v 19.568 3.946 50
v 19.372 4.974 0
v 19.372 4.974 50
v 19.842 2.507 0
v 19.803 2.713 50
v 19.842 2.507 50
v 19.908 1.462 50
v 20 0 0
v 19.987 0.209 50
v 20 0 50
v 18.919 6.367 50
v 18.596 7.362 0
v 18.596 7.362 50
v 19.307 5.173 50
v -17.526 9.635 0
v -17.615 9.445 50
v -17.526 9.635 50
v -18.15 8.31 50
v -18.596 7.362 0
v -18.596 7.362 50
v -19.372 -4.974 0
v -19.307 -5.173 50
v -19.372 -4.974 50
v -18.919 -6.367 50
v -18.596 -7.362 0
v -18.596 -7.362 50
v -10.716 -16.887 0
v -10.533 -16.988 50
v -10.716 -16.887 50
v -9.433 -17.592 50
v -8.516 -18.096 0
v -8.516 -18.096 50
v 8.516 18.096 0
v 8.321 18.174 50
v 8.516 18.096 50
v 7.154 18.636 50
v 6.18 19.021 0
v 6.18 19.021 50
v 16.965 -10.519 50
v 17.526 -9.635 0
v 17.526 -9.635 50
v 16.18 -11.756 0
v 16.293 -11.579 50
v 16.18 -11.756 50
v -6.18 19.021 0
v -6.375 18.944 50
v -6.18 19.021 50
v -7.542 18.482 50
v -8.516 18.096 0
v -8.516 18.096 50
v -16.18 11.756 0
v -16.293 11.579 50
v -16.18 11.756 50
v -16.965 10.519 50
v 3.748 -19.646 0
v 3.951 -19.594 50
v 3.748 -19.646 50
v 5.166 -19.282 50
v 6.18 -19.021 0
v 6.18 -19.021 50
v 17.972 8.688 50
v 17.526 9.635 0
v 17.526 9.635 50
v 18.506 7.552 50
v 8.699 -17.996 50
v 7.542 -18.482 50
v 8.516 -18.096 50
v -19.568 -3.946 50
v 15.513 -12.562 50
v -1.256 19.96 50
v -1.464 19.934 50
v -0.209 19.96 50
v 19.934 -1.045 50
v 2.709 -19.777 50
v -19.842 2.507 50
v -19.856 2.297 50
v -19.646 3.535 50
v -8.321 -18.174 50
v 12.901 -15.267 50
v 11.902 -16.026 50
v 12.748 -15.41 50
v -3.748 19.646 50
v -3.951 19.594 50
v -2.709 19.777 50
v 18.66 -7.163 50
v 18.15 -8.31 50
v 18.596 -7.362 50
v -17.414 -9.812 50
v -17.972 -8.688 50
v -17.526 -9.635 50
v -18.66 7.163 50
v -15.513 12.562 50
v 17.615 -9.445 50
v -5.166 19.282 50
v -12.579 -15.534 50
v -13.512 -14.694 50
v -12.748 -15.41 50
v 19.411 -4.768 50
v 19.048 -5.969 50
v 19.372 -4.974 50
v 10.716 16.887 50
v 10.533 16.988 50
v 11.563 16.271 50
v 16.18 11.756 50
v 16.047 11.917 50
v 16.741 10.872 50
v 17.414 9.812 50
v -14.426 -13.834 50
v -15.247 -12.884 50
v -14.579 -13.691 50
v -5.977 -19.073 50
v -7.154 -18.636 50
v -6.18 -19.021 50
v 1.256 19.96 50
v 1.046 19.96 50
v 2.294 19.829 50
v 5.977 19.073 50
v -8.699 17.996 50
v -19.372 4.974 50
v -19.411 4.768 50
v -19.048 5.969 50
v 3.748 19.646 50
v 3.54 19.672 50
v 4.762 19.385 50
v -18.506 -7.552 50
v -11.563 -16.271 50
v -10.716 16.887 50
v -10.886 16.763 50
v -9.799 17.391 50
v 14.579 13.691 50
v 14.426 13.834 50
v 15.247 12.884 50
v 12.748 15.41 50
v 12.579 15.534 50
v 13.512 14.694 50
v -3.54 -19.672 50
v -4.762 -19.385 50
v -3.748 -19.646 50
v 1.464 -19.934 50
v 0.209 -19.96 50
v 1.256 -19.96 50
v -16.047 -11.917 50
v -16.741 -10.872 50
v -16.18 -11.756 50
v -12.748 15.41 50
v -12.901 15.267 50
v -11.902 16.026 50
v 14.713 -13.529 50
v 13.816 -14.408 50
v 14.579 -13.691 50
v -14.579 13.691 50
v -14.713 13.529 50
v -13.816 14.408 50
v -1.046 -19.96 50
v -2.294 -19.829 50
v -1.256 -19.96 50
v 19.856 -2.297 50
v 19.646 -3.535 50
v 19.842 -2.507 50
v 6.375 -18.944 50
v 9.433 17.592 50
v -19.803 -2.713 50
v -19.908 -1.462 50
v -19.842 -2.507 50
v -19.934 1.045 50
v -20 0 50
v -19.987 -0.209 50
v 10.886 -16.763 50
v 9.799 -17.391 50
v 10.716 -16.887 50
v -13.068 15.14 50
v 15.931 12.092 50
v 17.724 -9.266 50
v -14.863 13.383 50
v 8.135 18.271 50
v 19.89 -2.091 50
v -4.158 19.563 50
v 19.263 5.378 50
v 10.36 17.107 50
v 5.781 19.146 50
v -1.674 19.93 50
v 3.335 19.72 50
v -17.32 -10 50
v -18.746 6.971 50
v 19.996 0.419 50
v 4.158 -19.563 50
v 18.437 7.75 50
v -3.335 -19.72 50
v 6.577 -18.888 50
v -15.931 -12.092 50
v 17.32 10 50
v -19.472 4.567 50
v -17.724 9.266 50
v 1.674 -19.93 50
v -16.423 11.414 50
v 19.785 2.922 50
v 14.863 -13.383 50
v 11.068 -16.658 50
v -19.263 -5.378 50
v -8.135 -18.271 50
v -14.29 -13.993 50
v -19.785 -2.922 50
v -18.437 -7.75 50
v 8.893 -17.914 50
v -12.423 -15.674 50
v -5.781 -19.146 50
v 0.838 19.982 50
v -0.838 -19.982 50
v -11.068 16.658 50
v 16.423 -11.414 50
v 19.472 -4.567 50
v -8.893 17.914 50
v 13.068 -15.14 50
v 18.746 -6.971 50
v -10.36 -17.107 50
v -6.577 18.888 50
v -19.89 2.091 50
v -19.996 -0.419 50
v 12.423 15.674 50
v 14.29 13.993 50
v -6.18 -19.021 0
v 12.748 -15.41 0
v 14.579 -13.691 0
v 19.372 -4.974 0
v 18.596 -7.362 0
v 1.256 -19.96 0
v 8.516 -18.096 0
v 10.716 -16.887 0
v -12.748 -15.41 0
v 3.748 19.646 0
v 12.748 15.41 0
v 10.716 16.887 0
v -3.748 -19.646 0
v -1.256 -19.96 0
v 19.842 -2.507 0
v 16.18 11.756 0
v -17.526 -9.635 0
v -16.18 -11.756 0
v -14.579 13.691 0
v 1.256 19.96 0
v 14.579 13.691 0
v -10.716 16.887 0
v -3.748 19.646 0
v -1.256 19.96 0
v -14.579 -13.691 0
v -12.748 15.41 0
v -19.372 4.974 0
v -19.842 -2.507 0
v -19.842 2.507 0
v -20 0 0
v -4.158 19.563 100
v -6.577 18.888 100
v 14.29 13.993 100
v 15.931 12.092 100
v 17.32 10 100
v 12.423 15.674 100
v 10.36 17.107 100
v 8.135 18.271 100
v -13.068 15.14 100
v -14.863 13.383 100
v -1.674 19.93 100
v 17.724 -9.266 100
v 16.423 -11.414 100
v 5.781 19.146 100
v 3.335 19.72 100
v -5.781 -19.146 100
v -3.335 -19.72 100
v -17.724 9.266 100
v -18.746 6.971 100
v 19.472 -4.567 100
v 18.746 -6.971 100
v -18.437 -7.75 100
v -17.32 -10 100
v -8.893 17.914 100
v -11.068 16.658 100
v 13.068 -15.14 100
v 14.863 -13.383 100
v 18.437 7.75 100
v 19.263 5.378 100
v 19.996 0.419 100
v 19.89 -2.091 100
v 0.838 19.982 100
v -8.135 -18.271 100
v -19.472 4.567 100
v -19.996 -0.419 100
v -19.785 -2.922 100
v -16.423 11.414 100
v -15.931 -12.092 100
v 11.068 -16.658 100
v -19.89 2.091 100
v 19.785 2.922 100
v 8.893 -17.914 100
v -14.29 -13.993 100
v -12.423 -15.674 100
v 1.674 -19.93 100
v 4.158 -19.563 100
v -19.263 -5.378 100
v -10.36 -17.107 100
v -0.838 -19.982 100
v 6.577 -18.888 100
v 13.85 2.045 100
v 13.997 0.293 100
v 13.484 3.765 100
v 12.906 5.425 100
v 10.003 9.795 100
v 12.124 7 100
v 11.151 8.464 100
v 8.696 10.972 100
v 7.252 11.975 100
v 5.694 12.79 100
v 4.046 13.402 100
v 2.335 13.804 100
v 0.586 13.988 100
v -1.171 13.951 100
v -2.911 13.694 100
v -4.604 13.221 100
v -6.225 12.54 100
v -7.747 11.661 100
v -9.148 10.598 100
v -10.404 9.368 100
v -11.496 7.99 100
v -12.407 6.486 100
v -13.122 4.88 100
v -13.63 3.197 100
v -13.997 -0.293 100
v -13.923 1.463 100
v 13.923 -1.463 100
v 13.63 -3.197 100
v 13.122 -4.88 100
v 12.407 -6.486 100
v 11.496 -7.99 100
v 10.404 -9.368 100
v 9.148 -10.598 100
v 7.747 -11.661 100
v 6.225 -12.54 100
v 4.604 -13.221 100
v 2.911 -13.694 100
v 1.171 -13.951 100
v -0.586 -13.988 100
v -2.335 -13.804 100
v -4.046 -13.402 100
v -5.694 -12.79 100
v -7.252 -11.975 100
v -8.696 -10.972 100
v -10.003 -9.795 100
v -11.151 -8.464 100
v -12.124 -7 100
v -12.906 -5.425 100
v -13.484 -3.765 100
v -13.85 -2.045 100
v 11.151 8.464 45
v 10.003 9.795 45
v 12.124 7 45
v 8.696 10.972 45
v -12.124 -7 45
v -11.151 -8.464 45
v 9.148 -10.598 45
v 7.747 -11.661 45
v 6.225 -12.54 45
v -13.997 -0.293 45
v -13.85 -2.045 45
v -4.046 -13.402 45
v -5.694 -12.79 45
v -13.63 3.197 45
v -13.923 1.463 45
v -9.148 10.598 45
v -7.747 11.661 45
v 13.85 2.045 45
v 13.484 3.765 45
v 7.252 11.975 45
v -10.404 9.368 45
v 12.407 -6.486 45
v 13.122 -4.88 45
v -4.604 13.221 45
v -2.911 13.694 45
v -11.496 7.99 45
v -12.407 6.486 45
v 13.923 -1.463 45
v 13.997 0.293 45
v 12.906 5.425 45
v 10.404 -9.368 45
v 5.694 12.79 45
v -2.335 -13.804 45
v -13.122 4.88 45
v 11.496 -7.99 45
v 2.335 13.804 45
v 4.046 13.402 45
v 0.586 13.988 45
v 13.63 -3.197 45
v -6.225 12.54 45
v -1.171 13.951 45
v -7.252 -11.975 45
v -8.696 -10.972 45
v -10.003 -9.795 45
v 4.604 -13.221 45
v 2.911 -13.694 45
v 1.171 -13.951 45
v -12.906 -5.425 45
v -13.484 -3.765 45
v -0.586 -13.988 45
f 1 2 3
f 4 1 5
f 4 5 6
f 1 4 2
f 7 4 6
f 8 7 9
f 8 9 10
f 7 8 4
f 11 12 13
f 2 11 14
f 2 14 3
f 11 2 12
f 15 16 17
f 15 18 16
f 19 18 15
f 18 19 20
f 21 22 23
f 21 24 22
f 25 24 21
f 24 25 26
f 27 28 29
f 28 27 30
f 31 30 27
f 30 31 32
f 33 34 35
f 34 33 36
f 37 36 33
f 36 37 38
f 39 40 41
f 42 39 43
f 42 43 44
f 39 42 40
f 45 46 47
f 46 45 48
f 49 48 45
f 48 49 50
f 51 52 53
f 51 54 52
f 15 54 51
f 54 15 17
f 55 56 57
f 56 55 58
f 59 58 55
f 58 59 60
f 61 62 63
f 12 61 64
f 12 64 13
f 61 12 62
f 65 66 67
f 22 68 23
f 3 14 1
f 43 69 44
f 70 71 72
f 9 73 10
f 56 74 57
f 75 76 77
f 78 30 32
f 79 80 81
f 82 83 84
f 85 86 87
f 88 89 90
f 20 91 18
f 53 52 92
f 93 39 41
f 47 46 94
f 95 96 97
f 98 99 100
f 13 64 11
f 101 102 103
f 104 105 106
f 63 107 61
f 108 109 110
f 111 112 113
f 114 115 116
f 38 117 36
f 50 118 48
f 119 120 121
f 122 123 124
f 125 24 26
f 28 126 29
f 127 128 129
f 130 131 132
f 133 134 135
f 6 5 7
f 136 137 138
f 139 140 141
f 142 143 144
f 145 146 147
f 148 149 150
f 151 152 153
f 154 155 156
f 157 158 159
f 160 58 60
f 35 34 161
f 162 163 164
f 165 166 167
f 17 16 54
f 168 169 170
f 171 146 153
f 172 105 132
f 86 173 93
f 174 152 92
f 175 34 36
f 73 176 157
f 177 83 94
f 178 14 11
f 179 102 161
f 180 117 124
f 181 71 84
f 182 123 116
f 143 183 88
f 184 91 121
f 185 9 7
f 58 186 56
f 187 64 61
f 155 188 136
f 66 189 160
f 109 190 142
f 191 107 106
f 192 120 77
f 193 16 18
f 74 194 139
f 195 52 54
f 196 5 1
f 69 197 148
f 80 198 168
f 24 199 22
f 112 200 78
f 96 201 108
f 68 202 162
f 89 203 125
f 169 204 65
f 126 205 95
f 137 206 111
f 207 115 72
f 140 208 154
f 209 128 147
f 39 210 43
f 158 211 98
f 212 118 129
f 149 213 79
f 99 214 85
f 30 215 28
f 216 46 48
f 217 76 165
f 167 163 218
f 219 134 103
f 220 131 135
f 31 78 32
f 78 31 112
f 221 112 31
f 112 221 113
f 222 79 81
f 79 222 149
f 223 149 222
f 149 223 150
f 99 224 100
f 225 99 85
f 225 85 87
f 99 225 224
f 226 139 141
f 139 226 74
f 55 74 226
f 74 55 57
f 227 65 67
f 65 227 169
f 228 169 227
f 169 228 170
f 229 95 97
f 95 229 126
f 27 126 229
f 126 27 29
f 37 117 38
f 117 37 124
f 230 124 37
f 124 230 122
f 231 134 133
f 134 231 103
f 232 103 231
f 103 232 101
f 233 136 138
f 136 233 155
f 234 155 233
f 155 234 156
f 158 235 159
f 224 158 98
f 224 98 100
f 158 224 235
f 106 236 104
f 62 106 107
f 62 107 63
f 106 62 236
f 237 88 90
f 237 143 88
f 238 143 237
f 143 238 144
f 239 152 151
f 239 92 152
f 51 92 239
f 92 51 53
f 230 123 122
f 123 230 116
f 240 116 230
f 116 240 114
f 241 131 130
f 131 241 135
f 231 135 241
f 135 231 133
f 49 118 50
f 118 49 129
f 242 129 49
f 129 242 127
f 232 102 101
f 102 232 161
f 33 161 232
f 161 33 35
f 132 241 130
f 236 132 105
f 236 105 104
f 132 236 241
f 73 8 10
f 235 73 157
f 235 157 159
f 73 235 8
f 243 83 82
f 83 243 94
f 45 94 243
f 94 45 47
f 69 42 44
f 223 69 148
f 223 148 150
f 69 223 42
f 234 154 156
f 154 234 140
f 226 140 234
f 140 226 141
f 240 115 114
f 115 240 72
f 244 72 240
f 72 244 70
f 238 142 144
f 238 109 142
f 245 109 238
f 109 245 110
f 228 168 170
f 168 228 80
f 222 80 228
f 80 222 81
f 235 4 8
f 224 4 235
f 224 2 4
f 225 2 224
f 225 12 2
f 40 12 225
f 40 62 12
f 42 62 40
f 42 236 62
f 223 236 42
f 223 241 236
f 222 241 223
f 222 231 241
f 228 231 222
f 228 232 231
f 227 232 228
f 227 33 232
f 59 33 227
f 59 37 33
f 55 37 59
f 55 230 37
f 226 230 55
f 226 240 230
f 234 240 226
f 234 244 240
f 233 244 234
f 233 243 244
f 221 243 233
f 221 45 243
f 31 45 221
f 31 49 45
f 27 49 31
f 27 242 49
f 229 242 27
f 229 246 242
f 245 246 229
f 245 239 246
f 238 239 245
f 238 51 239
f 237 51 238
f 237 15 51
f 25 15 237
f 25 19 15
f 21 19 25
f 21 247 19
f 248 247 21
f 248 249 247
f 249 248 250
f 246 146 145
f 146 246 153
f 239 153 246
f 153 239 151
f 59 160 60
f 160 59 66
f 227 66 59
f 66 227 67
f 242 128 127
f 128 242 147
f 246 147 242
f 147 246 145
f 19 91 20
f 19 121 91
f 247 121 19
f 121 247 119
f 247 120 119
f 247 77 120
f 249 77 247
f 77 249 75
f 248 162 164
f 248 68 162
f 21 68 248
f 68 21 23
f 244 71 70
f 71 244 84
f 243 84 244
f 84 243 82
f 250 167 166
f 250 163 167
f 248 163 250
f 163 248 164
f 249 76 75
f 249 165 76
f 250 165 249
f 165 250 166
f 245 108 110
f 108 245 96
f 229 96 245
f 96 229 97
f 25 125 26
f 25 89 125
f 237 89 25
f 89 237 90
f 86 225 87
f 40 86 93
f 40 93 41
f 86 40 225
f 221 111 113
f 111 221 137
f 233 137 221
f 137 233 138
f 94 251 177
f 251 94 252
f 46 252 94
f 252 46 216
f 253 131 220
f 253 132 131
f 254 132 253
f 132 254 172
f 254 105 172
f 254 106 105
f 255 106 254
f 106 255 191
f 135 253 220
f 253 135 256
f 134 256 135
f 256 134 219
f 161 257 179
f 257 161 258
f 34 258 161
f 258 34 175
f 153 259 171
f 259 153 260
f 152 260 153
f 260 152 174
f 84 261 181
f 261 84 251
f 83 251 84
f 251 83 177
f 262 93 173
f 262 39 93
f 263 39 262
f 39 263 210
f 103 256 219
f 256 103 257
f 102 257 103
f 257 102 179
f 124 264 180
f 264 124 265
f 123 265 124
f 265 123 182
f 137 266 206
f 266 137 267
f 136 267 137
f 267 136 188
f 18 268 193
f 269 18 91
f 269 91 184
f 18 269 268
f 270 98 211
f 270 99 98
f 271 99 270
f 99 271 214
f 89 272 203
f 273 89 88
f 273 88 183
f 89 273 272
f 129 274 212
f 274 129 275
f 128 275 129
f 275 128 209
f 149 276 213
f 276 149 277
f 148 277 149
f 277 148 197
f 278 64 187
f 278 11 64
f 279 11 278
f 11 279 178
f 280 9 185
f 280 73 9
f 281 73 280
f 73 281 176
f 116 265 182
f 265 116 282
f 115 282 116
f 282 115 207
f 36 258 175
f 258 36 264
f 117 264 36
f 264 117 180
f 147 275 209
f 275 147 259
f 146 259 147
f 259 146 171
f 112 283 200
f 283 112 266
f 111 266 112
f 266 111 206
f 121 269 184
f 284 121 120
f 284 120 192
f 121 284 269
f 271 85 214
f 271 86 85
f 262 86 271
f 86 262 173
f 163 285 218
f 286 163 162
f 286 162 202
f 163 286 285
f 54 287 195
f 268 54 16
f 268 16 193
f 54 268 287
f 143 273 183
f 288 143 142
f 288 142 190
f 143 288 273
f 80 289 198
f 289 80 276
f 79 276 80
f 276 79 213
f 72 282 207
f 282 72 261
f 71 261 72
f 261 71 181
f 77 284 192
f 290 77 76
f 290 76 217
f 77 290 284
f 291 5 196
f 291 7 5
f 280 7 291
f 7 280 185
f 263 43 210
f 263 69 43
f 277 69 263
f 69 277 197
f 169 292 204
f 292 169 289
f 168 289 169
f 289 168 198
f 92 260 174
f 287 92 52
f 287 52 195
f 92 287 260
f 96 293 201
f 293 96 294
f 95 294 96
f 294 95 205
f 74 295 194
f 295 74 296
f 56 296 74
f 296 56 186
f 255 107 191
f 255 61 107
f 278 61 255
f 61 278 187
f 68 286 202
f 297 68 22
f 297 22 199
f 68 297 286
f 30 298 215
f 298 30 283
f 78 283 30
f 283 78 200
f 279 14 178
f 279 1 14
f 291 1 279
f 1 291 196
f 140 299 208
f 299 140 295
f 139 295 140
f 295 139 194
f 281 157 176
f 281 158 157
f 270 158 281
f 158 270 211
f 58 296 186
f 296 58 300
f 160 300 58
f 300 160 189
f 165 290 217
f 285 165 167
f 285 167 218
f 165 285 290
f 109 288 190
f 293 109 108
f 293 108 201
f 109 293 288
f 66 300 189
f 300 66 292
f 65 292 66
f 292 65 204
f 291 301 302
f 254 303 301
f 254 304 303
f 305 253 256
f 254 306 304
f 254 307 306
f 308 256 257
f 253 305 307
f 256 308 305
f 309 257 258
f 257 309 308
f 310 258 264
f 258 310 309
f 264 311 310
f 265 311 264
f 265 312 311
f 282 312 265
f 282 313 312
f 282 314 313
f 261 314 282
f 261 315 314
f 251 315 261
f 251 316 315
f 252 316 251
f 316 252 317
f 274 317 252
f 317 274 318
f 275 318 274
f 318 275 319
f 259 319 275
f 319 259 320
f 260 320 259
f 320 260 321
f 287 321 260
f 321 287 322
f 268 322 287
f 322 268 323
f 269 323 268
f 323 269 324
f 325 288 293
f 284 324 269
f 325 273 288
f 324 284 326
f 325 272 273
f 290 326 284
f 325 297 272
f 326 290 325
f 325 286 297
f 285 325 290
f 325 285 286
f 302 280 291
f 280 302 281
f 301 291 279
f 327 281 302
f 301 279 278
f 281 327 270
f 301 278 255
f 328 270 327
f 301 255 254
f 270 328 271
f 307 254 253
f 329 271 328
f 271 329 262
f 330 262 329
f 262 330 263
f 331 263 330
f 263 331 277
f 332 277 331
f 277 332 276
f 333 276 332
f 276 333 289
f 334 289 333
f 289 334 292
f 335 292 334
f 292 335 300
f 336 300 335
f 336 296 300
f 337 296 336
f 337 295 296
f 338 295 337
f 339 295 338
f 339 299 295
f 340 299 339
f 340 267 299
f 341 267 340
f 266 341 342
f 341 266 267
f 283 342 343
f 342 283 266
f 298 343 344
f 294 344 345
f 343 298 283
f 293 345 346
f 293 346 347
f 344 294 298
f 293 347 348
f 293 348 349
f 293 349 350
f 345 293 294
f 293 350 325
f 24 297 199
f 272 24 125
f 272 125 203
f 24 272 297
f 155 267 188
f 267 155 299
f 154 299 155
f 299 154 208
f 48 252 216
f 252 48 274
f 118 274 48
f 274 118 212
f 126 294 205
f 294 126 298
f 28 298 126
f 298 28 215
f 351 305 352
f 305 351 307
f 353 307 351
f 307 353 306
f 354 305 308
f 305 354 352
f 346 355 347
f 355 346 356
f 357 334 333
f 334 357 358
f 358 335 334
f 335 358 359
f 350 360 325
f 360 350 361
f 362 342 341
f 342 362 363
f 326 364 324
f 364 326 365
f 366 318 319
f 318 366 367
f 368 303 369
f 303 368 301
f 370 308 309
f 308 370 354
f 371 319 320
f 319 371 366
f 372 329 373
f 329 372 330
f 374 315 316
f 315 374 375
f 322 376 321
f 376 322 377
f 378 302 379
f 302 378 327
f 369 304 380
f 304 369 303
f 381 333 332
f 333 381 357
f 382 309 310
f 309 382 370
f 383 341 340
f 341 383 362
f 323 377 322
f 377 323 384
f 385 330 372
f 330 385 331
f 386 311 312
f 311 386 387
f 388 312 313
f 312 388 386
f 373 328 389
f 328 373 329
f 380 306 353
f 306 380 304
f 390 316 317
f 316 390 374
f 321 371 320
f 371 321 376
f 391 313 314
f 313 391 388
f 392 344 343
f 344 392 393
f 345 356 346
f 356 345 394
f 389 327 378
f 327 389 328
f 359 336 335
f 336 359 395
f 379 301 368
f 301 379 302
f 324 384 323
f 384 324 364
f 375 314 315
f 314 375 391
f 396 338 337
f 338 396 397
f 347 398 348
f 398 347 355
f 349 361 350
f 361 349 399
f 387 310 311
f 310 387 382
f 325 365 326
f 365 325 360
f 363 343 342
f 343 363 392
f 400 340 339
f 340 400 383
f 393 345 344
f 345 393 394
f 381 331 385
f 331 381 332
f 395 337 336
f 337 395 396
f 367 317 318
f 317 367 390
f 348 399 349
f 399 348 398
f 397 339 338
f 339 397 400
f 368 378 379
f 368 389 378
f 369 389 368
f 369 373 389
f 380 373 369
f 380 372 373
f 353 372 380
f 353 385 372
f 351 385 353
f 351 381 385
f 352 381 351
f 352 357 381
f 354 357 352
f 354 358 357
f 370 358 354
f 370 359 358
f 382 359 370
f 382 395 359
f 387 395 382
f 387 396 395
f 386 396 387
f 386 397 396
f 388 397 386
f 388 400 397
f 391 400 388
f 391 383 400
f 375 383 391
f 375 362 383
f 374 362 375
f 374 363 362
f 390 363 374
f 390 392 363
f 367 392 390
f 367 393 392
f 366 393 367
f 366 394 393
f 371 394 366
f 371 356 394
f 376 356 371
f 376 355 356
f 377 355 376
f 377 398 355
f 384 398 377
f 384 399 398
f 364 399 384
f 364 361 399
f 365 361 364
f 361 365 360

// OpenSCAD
// Parameters for the twisted shape
r_base = 20;
r_top = 20;
height = 50;
angle = 30;

module twisted_shape(base_radius, top_radius, height, angle) {
  difference() {
    union() {
      // Base
      cylinder(r = base_radius, h = height, $fn = 50);

      // Top
      rotate([0, 0, angle])
        translate([0, 0, height])
          cylinder(r = top_radius, h = height, $fn = 50);
    }

    // Remove material at the top for twisting (optional)
    translate([0, 0, height - 5]) {
      rotate([0, 0, angle])
        cylinder(r = base_radius * 0.7, h = height + 10, $fn = 50);
    }
  }
}

twisted_shape(r_base, r_top, height, angle);
